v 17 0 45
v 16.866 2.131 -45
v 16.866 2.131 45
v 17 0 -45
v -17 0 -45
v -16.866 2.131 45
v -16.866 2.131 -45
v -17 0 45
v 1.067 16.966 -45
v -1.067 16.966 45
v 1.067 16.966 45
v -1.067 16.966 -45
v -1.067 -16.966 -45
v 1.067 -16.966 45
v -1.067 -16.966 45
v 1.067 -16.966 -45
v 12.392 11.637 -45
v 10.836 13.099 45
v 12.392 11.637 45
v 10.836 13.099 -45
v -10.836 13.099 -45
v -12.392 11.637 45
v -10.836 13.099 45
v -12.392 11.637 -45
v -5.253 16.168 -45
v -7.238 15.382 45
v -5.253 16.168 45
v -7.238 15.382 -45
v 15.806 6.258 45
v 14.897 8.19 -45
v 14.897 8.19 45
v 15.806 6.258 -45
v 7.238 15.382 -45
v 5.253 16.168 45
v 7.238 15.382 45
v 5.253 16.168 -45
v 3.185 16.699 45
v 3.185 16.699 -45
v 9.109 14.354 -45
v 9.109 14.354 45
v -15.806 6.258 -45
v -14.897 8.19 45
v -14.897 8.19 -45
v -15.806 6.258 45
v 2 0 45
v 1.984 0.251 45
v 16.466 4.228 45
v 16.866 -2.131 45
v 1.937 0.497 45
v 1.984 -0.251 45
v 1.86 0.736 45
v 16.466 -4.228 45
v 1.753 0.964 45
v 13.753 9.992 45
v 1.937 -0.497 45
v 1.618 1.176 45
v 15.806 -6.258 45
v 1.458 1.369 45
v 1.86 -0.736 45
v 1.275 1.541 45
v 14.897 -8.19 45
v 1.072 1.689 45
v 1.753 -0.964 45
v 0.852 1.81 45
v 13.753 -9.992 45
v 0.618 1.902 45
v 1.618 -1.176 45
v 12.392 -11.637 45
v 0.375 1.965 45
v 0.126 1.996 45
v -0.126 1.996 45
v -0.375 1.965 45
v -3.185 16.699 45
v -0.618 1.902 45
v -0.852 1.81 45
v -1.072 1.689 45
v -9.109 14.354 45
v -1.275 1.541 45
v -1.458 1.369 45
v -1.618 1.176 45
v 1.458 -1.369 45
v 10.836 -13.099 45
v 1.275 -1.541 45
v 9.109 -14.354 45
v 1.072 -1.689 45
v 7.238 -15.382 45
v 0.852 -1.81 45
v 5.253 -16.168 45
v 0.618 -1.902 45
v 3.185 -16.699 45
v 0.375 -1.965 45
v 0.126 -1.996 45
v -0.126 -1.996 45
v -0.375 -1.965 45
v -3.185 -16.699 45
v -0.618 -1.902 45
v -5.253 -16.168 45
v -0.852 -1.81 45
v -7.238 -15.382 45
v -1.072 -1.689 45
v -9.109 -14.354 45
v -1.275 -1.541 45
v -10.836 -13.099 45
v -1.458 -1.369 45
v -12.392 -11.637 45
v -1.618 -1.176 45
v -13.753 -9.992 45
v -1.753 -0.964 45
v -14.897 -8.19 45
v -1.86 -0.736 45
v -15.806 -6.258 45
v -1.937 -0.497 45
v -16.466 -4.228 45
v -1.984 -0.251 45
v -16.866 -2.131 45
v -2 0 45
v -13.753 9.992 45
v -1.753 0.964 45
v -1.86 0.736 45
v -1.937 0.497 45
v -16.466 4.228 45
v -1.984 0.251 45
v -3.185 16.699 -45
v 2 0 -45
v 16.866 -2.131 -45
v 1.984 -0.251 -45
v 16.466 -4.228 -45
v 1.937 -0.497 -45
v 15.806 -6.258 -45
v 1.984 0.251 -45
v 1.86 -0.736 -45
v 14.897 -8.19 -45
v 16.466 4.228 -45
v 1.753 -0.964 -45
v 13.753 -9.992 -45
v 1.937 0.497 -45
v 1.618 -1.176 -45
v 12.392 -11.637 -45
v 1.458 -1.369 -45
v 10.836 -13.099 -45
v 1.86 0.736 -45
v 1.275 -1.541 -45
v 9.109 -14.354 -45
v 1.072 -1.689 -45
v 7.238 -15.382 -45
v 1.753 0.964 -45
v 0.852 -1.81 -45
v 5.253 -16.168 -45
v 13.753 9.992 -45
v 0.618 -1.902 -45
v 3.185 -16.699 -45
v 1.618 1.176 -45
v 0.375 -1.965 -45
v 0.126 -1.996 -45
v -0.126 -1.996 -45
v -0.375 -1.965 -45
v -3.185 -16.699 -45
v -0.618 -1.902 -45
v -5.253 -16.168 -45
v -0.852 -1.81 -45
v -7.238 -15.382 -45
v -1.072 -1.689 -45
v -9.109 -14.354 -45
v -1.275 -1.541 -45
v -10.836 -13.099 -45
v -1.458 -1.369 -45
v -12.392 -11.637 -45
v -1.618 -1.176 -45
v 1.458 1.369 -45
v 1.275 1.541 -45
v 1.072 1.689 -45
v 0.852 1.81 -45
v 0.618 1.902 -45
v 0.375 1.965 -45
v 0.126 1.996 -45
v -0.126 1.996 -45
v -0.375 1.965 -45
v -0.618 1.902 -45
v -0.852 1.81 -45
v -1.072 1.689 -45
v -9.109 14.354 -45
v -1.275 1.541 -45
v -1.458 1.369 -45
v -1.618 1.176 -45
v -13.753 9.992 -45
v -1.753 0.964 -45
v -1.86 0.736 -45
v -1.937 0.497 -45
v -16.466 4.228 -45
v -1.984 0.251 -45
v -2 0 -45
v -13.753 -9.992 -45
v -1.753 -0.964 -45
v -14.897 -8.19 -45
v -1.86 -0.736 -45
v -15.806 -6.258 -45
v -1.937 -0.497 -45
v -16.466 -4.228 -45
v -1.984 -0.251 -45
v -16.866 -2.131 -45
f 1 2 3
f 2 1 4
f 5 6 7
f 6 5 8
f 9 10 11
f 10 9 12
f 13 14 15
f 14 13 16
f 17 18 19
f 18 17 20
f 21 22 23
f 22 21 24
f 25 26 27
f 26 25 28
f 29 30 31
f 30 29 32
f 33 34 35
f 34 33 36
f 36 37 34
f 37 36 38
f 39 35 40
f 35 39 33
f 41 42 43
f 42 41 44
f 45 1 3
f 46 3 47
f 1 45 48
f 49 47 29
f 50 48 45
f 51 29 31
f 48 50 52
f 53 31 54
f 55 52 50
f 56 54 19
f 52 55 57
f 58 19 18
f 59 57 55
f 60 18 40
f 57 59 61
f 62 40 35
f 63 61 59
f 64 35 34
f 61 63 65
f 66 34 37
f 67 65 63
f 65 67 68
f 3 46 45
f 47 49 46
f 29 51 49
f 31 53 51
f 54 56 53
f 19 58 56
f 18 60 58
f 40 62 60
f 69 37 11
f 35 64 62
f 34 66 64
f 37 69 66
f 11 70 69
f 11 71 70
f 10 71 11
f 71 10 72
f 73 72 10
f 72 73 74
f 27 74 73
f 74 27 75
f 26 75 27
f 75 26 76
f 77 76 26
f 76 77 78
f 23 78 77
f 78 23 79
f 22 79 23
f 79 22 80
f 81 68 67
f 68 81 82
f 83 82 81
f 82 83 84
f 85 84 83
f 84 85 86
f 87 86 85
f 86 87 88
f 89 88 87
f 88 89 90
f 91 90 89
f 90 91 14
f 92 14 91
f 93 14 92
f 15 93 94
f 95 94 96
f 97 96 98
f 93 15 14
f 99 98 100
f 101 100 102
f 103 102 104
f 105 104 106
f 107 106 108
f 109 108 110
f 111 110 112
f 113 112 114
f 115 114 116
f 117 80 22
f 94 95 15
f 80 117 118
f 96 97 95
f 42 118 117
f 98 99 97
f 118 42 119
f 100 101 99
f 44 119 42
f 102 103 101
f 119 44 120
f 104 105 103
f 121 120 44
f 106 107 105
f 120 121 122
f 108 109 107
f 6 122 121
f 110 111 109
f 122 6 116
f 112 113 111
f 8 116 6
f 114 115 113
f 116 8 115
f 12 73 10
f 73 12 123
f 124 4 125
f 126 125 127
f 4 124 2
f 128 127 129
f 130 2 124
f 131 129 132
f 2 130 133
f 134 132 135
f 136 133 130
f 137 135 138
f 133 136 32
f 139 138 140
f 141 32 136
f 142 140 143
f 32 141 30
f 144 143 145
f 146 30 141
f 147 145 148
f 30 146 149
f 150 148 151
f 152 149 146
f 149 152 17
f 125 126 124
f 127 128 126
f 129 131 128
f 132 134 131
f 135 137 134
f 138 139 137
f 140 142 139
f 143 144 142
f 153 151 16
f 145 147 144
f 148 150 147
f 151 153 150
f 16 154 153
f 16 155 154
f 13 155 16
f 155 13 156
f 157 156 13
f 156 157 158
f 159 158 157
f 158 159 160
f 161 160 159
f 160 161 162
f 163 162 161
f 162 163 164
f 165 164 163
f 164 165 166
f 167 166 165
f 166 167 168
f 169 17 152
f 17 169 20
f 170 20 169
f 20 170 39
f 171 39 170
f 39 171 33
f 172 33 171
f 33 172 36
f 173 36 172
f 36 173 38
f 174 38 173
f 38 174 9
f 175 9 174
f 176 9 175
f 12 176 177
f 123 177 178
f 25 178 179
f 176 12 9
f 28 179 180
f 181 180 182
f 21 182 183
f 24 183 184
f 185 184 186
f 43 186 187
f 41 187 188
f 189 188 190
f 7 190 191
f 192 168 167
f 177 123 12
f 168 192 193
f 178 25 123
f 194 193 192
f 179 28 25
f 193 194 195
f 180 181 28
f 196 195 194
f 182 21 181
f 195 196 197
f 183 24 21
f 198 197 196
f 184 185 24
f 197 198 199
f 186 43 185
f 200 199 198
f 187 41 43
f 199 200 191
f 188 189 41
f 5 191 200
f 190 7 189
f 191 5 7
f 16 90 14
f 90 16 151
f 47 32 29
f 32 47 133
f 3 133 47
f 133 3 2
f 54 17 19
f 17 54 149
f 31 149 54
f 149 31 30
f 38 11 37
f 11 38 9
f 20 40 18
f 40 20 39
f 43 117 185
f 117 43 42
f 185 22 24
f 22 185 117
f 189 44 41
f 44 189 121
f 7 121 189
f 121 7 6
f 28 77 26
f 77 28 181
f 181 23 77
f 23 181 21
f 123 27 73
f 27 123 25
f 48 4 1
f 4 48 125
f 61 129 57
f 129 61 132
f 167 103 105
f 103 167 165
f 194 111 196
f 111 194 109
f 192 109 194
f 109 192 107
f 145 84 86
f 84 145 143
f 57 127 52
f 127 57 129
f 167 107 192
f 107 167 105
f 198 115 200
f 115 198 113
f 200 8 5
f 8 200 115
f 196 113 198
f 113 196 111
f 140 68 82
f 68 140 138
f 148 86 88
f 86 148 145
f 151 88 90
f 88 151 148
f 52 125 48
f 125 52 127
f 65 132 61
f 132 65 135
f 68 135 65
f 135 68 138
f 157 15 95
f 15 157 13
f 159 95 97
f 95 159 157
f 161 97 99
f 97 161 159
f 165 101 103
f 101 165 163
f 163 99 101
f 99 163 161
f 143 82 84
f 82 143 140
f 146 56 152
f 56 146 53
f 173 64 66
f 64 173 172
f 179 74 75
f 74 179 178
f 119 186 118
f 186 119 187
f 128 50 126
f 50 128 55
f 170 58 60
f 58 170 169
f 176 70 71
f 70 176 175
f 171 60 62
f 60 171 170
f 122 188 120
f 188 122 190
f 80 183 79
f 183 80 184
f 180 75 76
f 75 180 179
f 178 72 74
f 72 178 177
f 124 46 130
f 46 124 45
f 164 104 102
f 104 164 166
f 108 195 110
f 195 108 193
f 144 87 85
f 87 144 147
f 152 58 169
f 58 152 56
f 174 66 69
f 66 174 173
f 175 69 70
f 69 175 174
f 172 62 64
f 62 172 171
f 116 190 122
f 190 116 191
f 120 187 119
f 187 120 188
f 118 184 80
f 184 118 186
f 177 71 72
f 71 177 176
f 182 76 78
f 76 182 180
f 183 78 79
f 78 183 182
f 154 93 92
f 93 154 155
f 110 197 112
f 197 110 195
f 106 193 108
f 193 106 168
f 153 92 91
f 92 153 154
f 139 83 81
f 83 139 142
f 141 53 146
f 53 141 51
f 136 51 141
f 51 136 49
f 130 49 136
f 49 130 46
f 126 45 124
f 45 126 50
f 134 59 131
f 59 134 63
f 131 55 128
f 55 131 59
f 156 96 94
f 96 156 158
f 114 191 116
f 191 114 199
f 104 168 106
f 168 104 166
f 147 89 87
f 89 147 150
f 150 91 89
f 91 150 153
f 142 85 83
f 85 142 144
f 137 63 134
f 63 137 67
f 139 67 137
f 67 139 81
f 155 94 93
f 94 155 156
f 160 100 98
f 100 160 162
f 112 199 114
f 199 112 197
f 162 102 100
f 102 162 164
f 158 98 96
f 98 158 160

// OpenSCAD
$fn = 50;


difference() {
	union() {
		translate(v = [0, 0, -45.0000000000]) {
			cylinder(h = 90, r = 17.0000000000);
		}
	}
	union() {
		translate(v = [0, 0, -100.0000000000]) {
			cylinder(h = 200, r = 2.0000000000);
		}
	}
}
